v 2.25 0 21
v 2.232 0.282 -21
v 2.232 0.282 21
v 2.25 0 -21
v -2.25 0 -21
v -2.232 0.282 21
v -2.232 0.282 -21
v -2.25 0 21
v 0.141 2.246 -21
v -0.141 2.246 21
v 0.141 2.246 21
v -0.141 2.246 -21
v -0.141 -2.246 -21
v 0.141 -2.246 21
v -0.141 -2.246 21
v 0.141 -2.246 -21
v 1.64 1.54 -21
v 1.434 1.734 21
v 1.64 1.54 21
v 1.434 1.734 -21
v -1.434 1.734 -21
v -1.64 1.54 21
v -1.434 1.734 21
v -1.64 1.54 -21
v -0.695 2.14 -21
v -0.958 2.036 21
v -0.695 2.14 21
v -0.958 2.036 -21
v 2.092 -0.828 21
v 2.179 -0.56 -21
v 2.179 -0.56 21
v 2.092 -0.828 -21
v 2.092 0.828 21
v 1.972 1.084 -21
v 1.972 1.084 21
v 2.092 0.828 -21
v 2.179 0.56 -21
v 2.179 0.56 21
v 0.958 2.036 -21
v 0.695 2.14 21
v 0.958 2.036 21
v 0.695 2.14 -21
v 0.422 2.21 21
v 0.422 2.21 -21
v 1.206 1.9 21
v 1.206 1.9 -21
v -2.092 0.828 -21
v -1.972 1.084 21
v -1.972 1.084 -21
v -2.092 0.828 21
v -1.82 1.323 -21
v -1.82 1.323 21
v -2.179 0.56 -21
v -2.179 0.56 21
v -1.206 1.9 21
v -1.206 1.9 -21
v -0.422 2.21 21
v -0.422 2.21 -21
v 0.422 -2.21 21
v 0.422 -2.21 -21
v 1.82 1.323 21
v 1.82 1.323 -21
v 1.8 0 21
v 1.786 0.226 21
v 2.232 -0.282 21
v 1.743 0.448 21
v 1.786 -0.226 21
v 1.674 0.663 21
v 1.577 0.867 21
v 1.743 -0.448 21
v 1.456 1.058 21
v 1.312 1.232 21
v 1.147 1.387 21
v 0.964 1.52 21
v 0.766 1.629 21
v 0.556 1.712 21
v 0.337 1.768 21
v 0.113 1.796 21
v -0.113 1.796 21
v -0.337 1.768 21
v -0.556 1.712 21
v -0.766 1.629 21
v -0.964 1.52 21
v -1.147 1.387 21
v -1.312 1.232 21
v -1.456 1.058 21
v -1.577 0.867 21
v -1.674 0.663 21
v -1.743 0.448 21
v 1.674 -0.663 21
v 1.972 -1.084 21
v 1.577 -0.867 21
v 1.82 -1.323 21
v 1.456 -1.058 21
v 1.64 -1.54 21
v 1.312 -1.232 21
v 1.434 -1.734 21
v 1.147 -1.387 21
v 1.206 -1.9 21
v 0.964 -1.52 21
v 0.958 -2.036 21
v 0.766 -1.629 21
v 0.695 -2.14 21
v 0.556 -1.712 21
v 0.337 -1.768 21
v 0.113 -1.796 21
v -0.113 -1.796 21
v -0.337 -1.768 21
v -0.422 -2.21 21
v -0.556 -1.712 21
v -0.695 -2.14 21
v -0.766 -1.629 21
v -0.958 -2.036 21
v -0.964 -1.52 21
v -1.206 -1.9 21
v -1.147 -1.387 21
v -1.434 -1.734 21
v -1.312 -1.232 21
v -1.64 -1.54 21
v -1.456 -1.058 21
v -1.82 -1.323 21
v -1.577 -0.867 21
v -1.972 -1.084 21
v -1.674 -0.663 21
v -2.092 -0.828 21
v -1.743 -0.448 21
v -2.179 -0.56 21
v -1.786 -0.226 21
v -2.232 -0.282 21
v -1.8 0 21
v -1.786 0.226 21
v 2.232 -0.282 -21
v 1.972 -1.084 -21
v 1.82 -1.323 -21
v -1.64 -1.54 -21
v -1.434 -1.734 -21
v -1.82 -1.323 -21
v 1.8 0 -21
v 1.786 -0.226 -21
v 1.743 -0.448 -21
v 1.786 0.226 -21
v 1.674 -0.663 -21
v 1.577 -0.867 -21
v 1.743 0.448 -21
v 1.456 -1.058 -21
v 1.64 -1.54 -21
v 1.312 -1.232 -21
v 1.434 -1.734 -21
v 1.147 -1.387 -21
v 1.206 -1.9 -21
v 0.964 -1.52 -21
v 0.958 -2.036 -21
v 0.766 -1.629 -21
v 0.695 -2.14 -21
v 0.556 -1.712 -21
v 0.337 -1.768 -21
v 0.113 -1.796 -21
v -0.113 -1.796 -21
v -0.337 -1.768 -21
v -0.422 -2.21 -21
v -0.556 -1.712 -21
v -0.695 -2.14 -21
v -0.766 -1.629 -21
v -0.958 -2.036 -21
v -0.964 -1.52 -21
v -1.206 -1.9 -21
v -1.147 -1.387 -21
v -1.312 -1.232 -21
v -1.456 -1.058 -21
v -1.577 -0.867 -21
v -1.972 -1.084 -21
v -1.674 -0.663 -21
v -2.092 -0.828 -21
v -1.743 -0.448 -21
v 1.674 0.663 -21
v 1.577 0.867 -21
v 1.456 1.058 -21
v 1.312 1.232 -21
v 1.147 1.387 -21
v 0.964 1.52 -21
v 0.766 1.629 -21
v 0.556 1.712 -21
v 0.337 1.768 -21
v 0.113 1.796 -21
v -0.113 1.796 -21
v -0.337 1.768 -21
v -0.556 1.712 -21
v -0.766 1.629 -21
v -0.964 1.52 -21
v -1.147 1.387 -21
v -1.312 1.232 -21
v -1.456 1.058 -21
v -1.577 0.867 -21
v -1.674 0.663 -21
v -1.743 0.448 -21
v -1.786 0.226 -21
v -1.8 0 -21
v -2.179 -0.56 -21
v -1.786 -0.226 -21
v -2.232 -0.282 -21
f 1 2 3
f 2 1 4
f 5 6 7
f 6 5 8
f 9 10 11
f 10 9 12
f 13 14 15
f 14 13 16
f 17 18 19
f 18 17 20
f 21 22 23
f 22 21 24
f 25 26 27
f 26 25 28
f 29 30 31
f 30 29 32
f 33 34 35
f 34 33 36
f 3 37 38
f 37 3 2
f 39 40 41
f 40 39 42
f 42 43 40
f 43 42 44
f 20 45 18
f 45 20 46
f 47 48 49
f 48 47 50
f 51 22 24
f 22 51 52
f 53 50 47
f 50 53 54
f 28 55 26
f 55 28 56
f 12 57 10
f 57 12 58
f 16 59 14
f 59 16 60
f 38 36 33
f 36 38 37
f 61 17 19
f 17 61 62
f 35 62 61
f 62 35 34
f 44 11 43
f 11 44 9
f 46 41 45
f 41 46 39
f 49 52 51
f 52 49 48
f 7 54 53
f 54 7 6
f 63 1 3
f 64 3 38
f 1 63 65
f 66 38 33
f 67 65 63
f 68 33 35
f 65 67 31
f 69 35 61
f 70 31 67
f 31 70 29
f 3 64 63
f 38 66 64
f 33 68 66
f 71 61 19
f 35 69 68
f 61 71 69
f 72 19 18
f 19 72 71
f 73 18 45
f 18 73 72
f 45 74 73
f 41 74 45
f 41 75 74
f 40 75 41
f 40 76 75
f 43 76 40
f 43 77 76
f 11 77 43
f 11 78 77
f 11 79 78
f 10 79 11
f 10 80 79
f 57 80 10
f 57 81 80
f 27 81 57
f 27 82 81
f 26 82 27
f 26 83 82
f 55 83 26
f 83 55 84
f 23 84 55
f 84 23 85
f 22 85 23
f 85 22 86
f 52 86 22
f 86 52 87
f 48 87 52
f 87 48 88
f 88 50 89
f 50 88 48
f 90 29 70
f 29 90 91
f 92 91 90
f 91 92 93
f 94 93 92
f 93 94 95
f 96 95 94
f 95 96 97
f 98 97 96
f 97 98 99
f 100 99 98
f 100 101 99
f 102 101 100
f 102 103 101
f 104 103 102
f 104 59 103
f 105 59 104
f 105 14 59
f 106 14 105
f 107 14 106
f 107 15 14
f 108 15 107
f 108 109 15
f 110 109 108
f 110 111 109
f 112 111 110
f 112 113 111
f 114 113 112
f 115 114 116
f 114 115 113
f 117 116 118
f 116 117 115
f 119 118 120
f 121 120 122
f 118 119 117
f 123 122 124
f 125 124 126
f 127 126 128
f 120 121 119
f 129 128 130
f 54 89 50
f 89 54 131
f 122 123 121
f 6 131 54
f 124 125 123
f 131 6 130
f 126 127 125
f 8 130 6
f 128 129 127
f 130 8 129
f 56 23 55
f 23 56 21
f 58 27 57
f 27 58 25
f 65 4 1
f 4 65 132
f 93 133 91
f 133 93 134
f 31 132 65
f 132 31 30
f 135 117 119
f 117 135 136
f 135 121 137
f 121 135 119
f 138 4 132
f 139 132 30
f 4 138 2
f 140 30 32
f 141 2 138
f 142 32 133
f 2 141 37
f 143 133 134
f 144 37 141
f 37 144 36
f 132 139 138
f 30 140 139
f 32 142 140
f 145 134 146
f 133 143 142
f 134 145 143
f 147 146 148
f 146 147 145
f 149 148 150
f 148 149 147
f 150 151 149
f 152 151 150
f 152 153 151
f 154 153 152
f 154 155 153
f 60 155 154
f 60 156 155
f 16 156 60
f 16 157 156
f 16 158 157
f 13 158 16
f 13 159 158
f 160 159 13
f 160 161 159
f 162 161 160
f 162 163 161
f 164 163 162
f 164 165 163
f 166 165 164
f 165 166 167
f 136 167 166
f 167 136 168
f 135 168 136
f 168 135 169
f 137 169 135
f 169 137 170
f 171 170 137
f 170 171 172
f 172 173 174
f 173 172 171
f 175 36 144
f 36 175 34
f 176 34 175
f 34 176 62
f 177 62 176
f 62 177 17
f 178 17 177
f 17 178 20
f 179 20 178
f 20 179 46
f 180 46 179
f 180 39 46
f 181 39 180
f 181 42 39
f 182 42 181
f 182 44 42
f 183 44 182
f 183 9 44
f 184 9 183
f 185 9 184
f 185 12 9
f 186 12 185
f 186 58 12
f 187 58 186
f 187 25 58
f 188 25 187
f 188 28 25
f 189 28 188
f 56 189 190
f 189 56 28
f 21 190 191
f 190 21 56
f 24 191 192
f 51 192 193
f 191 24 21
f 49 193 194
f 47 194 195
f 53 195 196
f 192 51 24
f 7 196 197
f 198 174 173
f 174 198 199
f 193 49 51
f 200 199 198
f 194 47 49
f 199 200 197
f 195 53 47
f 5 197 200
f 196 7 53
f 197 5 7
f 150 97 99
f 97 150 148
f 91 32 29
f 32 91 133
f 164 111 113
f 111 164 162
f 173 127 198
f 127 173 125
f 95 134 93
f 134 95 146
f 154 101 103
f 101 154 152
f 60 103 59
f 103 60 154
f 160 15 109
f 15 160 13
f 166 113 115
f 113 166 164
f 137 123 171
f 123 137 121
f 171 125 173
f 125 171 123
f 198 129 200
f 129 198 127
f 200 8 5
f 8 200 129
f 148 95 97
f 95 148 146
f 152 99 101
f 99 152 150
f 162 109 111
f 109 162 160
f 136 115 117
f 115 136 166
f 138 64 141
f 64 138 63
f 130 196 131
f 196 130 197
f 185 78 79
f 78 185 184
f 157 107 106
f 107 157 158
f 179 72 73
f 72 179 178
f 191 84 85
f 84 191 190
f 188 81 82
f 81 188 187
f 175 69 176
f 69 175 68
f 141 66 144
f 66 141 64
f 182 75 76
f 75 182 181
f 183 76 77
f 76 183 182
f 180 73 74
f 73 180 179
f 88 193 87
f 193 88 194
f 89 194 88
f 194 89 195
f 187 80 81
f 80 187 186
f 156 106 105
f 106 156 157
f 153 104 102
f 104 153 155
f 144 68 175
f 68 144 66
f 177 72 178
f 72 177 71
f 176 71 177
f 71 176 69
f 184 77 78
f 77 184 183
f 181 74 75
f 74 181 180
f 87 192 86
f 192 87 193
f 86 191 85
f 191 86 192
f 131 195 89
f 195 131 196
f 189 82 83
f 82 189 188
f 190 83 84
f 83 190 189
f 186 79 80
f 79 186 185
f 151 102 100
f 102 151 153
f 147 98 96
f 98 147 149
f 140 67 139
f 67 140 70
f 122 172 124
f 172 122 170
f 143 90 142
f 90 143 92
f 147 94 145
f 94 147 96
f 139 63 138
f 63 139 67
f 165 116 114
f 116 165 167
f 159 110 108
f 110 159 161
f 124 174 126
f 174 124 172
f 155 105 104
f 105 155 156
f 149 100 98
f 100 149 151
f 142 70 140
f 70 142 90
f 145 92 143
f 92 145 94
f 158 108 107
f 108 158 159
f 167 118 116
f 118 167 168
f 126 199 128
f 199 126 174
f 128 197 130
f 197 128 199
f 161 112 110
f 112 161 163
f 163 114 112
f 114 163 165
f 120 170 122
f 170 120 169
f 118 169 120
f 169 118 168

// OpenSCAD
$fn = 50;


difference() {
	union() {
		translate(v = [0, 0, -21.0000000000]) {
			cylinder(h = 42, r = 2.2500000000);
		}
	}
	union() {
		translate(v = [0, 0, -100.0000000000]) {
			cylinder(h = 200, r = 1.8000000000);
		}
	}
}
